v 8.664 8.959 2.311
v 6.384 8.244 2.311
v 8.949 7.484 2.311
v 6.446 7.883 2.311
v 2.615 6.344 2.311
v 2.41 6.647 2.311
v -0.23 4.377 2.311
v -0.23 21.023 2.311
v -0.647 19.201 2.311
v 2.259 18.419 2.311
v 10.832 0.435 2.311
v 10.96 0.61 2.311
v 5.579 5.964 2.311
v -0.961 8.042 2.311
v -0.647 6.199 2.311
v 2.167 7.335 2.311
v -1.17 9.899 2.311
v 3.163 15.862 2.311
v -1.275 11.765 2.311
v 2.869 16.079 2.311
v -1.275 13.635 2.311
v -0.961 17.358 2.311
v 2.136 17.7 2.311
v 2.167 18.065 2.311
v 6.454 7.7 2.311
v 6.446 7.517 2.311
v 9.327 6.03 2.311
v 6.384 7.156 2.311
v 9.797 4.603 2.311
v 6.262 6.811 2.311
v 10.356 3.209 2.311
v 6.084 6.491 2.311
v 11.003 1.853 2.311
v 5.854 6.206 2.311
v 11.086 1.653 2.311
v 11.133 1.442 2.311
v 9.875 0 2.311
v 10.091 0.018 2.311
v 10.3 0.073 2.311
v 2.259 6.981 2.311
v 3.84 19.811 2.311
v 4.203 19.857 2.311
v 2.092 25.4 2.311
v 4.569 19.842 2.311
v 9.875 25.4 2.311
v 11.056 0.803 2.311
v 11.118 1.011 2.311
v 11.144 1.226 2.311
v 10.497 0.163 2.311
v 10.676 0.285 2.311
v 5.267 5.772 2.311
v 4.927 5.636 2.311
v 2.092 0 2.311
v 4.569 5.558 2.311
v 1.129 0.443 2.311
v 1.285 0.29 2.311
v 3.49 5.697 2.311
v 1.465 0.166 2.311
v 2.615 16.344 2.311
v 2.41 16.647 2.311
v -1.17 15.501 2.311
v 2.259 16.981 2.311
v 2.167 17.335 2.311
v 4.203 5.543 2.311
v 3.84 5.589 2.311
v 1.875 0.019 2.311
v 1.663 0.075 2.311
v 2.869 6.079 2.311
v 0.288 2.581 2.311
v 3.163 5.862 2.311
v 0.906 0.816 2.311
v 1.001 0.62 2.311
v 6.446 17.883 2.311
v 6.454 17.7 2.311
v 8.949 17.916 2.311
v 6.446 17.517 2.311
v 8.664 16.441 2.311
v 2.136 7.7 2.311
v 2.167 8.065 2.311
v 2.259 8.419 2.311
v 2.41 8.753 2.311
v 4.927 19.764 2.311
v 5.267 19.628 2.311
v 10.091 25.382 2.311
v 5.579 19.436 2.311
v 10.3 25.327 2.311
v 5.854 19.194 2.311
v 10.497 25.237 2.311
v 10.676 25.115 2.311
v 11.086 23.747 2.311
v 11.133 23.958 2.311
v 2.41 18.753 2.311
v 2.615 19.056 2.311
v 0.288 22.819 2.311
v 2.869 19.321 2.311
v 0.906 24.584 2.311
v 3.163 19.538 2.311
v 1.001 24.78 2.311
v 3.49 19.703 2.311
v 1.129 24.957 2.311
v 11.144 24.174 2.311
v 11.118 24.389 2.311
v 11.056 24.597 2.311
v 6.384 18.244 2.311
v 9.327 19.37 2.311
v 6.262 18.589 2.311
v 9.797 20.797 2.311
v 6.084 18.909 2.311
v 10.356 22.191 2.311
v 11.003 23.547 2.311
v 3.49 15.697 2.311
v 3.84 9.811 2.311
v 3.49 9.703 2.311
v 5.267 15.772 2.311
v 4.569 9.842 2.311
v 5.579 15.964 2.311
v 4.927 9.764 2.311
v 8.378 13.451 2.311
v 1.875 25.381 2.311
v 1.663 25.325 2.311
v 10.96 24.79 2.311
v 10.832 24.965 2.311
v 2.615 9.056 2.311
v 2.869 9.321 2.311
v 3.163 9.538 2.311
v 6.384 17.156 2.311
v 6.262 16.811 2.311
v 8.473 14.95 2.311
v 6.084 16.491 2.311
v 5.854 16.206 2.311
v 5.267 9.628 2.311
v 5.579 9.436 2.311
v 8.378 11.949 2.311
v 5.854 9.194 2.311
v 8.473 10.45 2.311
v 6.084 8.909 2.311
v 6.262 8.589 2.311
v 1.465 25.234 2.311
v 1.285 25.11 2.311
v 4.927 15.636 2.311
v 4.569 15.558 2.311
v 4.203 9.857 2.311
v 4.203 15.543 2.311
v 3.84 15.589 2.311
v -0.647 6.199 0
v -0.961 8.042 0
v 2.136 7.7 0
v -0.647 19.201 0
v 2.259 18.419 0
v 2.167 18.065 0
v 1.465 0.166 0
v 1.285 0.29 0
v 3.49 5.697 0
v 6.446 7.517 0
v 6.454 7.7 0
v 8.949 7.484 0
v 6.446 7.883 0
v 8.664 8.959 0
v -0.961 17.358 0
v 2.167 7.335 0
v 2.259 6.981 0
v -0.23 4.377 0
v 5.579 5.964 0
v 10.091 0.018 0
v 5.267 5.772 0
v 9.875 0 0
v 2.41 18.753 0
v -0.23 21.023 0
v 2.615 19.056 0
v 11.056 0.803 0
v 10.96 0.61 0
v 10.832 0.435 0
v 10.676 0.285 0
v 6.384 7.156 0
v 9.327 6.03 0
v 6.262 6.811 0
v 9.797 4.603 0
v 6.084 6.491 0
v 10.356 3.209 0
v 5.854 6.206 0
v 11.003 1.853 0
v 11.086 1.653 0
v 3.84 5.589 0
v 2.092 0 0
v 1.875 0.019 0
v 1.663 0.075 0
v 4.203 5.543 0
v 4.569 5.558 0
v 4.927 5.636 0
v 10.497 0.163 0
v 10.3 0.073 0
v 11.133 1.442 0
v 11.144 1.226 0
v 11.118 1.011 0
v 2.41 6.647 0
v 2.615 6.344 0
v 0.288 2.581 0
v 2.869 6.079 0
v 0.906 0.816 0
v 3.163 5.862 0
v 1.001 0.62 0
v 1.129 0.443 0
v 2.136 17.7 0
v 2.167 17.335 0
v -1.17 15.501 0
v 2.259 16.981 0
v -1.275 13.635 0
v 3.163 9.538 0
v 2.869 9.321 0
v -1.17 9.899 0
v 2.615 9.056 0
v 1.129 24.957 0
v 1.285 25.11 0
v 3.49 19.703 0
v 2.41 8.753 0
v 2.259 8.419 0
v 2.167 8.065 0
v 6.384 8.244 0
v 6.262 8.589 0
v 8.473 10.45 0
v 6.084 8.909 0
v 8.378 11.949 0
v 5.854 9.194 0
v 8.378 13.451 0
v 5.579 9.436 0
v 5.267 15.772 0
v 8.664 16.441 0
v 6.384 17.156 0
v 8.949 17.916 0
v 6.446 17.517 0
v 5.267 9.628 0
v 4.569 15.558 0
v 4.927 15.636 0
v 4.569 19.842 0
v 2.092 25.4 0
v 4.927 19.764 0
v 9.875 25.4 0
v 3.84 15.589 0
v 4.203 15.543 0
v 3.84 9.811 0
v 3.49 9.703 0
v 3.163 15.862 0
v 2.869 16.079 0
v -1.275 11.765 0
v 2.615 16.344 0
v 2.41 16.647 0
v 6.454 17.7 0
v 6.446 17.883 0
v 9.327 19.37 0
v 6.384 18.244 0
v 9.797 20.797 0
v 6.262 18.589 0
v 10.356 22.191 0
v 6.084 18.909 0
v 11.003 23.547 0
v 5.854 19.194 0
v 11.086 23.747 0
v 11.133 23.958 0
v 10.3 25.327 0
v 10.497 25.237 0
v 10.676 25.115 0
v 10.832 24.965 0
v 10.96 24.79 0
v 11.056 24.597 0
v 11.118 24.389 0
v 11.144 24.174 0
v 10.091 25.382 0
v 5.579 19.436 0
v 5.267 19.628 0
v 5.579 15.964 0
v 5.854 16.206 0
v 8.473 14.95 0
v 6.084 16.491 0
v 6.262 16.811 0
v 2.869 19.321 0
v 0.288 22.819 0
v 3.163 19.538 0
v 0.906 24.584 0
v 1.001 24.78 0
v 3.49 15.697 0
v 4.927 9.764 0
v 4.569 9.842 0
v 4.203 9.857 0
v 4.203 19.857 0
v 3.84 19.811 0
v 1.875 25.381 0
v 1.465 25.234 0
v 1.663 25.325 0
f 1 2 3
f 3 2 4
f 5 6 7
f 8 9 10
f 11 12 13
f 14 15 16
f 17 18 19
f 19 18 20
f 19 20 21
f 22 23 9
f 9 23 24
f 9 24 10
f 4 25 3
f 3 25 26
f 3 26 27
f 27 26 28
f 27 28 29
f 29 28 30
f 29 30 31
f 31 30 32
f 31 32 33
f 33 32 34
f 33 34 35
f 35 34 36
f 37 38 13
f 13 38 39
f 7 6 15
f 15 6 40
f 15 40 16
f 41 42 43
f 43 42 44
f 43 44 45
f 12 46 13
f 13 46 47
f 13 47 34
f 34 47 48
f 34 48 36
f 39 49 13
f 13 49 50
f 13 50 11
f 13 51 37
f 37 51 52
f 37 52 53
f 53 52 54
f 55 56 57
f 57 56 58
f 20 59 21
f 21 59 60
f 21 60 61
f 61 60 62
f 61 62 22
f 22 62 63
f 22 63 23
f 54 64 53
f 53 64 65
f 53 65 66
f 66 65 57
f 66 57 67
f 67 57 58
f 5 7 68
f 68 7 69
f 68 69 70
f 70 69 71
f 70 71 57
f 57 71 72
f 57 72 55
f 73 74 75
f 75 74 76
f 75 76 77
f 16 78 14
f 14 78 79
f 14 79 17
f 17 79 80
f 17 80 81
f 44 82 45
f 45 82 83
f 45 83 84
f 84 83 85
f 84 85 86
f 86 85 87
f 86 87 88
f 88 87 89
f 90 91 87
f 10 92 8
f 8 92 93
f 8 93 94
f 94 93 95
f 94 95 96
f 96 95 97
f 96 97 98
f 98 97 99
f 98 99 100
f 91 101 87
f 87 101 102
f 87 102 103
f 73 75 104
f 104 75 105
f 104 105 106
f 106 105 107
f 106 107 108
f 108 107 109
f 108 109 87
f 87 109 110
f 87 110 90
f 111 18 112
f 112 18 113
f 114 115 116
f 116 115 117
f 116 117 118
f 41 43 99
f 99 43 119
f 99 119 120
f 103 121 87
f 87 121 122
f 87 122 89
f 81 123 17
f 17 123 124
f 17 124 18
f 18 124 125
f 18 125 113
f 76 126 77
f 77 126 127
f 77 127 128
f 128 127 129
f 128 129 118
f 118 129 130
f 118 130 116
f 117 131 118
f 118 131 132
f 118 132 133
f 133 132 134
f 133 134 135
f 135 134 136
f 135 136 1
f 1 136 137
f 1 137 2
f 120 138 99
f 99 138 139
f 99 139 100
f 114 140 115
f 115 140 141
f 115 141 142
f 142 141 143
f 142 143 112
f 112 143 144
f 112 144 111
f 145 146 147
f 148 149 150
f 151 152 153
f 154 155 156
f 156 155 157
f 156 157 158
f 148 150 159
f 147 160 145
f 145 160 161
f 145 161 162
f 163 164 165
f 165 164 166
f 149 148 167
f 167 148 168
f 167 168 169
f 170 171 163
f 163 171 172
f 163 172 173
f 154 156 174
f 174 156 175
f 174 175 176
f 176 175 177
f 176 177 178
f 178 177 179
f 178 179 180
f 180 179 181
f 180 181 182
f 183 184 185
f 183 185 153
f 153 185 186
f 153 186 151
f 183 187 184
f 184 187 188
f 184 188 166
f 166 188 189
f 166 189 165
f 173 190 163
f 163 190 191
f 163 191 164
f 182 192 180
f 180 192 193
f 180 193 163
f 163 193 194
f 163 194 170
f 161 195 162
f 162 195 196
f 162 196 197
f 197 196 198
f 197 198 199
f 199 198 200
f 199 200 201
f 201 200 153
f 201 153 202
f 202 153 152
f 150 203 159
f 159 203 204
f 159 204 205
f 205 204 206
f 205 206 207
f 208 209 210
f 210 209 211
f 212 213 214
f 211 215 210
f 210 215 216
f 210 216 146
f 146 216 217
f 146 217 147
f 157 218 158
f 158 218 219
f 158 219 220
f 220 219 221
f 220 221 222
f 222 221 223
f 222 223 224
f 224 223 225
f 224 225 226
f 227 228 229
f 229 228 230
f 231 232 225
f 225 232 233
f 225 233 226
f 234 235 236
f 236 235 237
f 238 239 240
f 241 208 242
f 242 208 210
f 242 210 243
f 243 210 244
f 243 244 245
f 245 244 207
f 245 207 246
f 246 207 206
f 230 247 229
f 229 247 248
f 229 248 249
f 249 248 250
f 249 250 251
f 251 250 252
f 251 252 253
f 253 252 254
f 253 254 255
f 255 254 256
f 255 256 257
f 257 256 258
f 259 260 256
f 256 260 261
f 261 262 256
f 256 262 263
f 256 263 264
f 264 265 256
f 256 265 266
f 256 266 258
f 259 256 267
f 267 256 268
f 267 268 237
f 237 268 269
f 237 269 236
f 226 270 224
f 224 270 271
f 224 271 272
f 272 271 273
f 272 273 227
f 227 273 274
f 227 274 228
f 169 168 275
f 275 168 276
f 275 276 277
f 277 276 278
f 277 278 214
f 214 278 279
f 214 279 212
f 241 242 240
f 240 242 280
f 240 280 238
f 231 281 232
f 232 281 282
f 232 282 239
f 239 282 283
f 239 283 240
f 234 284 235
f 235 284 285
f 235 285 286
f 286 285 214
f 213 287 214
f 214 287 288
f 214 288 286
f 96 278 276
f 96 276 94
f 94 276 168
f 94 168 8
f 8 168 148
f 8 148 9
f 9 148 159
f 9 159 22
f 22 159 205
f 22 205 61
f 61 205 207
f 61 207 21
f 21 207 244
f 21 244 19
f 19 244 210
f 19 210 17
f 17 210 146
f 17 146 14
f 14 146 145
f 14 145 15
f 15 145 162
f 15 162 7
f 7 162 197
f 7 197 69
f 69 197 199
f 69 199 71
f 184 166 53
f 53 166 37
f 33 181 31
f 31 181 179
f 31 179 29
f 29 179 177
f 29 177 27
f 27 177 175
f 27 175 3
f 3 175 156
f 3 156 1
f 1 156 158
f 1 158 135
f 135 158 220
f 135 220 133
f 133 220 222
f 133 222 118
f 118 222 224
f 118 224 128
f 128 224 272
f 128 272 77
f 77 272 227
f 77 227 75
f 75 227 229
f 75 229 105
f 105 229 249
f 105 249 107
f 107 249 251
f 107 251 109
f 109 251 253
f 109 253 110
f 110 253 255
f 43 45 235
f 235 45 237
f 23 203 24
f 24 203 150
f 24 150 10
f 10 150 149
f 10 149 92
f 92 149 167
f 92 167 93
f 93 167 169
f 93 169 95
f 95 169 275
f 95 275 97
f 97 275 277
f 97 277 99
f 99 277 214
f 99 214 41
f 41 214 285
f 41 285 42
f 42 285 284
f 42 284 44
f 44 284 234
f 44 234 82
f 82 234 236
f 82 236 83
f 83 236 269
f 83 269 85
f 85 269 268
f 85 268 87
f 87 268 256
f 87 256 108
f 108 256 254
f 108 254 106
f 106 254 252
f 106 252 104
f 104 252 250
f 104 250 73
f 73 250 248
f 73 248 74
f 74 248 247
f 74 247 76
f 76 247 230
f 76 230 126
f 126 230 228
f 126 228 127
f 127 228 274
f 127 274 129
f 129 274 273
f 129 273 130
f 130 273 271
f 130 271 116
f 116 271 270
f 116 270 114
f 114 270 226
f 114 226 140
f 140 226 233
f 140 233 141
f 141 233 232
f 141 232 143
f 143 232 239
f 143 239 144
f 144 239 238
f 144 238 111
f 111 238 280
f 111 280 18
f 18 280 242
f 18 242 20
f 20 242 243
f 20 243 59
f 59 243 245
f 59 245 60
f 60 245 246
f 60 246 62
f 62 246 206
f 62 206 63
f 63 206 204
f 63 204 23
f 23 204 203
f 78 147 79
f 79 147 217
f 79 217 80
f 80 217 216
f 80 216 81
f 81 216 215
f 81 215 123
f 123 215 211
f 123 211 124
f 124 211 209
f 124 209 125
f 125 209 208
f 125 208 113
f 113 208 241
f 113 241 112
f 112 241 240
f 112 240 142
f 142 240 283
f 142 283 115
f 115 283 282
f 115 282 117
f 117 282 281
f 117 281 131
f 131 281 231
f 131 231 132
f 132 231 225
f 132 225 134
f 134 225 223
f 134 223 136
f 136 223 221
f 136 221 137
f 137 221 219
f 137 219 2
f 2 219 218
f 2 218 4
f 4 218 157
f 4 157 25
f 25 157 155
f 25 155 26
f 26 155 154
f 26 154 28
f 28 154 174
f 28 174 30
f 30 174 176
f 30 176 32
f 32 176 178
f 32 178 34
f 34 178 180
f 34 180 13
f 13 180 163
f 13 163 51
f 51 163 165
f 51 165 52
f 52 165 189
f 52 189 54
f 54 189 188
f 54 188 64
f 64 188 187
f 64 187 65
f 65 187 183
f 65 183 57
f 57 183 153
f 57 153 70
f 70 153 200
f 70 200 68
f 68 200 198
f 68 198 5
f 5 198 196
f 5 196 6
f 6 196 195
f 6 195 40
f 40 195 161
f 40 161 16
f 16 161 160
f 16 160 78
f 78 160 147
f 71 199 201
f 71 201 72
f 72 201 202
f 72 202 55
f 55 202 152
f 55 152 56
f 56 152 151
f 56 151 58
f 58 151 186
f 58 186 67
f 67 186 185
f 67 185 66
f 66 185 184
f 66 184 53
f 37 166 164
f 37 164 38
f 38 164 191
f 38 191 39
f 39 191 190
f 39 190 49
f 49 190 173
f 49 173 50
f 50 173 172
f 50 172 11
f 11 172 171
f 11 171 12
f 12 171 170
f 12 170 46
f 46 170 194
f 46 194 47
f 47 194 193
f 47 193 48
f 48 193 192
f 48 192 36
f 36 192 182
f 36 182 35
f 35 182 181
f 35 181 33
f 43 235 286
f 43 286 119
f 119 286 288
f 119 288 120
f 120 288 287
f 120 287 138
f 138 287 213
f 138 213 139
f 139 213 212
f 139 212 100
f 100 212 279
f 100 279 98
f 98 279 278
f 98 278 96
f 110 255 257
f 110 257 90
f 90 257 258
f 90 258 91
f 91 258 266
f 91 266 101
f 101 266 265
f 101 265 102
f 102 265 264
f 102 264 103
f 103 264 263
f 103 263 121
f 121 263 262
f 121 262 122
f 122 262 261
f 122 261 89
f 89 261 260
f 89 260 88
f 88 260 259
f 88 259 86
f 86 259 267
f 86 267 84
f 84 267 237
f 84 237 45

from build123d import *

# Parameters (mm, degrees)
SKETCH1_R           = 2.15900001
BOSS_EXTRUDE1_DEPTH = 2.3114
FILLET2_R           = 1.27


with BuildPart() as part:
    # Sketch1 → Boss-Extrude1 (new body)
    with BuildSketch(Plane.XY):
        with BuildLine():
            Line((12.070207479, 25.399999934), (1.230583588, 25.399999934))
            ThreePointArc((1.230583588, 25.399999934), (-1.28826593, 12.699999967), (1.230583588, 0))
            Line((1.230583588, 0), (12.070207479, 0))
            ThreePointArc((12.070207479, 0), (8.365759658, 12.699999967), (12.070207479, 25.399999934))
        make_face()
        with Locations((4.295000046, 17.7)):
            Circle(SKETCH1_R, mode=Mode.SUBTRACT)
        with Locations((4.295000046, 7.699999934)):
            Circle(SKETCH1_R, mode=Mode.SUBTRACT)
    extrude(amount=BOSS_EXTRUDE1_DEPTH)

    # Fillet2
    fillet2_edges = [part.edges().sort_by_distance(p)[0] for p in [
        (1.230583588, 25.399999934, 1.1557),
        (12.070207479, 25.399999934, 1.1557),
        (12.070207479, 0, 1.1557),
        (1.230583588, 0, 1.1557),
    ]]
    fillet(fillet2_edges, radius=FILLET2_R)


solid = part.part
